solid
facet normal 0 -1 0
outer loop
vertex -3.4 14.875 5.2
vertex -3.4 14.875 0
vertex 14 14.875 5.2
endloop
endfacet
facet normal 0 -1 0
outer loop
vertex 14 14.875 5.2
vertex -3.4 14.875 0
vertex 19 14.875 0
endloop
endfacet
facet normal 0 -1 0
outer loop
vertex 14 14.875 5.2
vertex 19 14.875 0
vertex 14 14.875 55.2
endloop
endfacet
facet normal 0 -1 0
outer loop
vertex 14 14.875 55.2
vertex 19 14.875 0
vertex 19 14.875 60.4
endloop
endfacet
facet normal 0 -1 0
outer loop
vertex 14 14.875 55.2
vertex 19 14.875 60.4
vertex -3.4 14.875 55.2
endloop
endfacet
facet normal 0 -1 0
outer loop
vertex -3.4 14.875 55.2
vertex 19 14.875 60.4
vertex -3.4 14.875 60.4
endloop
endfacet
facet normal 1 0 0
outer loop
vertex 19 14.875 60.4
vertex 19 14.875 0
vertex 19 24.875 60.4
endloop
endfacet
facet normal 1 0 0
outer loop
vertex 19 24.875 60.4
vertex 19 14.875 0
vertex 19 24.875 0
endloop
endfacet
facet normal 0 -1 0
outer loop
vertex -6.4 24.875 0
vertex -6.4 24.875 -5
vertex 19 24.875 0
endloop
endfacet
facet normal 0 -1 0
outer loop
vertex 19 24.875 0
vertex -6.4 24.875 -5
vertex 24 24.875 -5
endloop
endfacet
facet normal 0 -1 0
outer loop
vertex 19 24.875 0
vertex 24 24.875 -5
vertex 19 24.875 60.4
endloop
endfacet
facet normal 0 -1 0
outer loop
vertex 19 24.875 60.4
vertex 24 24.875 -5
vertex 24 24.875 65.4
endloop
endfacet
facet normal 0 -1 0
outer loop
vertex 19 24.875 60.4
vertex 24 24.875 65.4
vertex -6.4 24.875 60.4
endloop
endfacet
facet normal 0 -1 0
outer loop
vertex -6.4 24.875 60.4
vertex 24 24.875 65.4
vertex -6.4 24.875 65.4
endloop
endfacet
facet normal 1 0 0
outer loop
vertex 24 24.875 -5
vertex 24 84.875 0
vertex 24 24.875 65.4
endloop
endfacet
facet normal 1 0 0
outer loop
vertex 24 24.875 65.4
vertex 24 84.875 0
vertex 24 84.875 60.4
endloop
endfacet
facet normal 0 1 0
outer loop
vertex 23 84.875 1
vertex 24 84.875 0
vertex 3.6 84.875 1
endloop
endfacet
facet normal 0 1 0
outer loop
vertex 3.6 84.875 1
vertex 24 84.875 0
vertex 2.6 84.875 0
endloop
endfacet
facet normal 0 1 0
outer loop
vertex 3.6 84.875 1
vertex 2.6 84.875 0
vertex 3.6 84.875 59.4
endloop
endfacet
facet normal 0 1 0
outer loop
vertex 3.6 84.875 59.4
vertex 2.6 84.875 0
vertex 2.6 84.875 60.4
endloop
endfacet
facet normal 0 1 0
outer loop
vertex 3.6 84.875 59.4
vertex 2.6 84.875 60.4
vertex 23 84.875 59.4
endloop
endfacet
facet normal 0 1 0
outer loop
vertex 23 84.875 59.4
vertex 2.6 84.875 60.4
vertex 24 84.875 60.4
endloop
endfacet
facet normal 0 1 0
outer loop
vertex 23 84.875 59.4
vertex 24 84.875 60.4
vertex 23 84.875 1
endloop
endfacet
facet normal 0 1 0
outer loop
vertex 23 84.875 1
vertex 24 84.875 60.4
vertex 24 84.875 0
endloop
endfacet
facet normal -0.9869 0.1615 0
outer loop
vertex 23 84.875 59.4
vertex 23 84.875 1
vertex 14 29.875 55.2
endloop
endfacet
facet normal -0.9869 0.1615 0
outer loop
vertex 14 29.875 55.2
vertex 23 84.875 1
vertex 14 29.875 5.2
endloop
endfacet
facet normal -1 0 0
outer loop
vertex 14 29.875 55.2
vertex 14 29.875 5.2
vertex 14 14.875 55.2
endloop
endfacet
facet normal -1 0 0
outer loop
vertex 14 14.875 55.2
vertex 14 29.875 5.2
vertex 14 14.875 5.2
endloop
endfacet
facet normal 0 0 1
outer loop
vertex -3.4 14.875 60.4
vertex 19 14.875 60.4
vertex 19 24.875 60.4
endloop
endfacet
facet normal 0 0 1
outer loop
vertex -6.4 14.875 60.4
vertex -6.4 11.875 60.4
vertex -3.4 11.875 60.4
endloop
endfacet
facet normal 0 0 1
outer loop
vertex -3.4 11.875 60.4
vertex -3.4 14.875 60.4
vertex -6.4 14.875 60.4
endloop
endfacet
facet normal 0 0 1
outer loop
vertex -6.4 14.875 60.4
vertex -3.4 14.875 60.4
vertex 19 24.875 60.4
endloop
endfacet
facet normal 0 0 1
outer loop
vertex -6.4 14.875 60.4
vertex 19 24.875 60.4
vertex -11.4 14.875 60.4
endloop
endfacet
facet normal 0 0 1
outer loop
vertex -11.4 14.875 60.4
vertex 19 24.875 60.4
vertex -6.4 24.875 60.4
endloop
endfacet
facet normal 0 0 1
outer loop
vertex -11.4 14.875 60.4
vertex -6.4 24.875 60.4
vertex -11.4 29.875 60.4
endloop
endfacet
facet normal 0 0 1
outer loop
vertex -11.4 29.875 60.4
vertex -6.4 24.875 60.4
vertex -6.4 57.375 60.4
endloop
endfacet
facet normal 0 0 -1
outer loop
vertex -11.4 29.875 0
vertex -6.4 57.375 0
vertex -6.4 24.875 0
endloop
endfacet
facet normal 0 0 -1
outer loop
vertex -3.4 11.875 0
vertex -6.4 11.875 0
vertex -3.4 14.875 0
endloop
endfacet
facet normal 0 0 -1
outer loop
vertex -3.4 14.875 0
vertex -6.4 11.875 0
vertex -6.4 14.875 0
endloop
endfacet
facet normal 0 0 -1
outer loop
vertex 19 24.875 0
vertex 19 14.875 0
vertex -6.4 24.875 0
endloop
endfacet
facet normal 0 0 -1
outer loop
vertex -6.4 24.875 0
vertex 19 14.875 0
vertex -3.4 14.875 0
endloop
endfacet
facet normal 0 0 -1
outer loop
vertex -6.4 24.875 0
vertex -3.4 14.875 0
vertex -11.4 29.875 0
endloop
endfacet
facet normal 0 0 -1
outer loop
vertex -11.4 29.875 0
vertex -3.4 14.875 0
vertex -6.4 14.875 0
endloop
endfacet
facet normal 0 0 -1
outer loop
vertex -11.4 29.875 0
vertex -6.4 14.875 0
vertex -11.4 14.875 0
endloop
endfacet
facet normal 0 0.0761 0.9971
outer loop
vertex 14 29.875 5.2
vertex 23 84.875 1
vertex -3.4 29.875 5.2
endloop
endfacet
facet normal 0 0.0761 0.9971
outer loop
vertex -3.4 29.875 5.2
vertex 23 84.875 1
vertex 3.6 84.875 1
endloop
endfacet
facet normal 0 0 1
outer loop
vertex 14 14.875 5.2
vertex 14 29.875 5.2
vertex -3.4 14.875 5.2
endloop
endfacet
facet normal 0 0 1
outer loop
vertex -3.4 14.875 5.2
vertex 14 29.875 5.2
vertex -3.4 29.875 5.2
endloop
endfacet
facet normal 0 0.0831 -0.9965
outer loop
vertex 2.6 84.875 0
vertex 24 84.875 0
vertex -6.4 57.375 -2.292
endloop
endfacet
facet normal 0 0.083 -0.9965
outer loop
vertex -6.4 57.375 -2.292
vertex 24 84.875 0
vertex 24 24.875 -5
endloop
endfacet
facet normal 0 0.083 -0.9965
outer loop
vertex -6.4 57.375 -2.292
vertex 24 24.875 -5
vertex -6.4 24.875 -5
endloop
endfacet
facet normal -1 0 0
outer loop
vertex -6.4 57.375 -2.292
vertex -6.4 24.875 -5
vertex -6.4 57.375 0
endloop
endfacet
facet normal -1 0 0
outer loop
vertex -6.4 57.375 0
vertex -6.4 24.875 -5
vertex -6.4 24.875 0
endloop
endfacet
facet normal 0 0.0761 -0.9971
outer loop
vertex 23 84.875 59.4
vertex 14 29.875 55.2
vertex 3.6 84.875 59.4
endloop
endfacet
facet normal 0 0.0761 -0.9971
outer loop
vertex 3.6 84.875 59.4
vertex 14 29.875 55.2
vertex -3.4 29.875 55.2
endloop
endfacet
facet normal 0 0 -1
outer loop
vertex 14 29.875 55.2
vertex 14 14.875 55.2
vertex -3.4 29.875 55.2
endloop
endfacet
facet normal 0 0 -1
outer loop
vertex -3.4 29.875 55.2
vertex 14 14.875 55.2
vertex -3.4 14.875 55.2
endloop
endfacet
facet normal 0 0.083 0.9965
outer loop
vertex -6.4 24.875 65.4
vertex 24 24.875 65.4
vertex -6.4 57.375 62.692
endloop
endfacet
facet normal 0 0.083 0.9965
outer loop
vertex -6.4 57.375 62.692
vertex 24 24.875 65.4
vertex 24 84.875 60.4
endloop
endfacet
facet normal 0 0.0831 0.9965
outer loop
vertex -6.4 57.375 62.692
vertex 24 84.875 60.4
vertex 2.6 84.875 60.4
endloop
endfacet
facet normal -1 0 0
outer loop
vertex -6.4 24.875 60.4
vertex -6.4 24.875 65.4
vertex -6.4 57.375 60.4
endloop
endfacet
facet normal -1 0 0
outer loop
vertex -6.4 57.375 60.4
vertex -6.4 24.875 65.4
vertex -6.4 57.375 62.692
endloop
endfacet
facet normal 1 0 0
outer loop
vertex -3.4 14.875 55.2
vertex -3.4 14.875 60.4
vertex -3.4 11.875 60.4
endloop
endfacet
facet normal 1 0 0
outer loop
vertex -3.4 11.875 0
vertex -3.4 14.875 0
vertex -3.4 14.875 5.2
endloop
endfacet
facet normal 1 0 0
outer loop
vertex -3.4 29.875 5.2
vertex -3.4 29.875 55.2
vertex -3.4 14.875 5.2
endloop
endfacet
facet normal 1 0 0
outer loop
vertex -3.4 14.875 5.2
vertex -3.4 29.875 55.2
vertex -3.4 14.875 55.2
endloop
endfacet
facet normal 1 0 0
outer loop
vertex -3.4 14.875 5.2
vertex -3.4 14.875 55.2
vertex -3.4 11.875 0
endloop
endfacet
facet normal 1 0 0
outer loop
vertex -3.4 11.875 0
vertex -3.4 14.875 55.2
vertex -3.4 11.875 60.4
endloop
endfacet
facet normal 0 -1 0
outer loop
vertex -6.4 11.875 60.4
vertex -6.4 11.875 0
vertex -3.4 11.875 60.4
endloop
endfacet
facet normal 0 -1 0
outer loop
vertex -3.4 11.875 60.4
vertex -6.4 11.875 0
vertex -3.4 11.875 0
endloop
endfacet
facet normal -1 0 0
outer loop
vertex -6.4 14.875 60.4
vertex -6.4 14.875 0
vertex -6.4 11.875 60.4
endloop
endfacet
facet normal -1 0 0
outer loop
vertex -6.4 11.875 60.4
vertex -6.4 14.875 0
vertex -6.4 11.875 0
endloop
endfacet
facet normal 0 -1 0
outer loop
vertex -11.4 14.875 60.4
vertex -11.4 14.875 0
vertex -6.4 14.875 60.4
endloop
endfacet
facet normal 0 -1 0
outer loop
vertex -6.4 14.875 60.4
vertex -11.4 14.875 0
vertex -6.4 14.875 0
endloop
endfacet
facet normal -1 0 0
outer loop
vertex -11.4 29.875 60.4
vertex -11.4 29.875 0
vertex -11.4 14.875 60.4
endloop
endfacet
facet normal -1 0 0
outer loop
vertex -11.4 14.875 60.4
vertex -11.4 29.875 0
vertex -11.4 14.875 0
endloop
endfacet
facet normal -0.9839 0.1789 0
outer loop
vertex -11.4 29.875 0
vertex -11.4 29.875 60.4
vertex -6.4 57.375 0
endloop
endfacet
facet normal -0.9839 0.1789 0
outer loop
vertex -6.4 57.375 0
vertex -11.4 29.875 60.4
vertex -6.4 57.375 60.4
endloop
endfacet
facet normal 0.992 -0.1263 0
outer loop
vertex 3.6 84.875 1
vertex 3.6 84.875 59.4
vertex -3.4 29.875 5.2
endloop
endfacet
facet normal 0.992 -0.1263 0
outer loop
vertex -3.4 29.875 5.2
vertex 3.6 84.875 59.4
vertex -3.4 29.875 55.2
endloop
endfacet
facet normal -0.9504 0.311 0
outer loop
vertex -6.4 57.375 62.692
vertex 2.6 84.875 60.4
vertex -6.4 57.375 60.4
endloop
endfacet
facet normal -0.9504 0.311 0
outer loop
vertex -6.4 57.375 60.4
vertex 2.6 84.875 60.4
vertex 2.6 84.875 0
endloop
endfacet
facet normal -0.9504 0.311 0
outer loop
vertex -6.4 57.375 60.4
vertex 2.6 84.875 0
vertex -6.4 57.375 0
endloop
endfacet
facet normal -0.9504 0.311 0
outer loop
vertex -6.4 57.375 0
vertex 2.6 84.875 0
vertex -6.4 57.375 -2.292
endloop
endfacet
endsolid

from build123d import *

# Parameters (mm, degrees)
AUFSATZ_LINEAR_AUSTRAGEN1_DEPTH      = 60.4
AUFSATZ_LINEAR_AUSTRAGEN2_DEPTH      = 30.4
AUFSATZ_LINEAR_AUSTRAGEN3_DEPTH      = 55.2
AUFSATZ_LINEAR_AUSTRAGEN3_DEPTH_BACK = 5.2
SKIZZE4_W                            = 5
SKIZZE4_H                            = 10
SCHNITT_LINEAR_AUSTRAGEN1_DEPTH      = 66.4
SCHNITT_LINEAR_AUSTRAGEN4_DEPTH      = 6
SCHNITT_LINEAR_AUSTRAGEN4_DEPTH_BACK = 66.4


with BuildPart() as part:
    # Skizze1 → Aufsatz-Linear austragen1 (new body)
    with BuildSketch(Plane.XY):
        Polygon((14, 14.875), (14, 29.875), (23, 84.875), (24, 84.875), (24, 24.875), (19, 24.875), (19, 14.875), align=None)
    extrude(amount=AUFSATZ_LINEAR_AUSTRAGEN1_DEPTH)

    # Skizze2 → Aufsatz-Linear austragen2 (add)
    with BuildSketch(Plane(origin=(24, 0, 0), x_dir=(0, 0, -1), z_dir=(1, 0, 0))):
        Polygon((-59.4, 84.875), (-60.4, 84.875), (-65.4, 24.875), (-60.4, 24.875), (-60.4, 14.875), (-55.2, 14.875), (-55.2, 29.875), align=None)
        Polygon((0, 24.875), (0, 14.875), (-5.2, 14.875), (-5.2, 29.875), (-1, 84.875), (0, 84.875), (5, 24.875), align=None)
    extrude(amount=-AUFSATZ_LINEAR_AUSTRAGEN2_DEPTH)

    # Skizze3 → Aufsatz-Linear austragen3 (add, two sides)
    with BuildSketch(Plane.XY.offset(5.2)) as aufsatz_linear_austragen3_sk:
        Polygon((-3.4, 29.875), (-3.4, 14.875), (-3.4, 11.875), (-6.4, 11.875), (-6.4, 14.875), (-11.4, 14.875), (-11.4, 29.875), (-1.4, 84.875), (3.6, 84.875), align=None)
    extrude(amount=AUFSATZ_LINEAR_AUSTRAGEN3_DEPTH)
    extrude(aufsatz_linear_austragen3_sk.sketch, amount=-AUFSATZ_LINEAR_AUSTRAGEN3_DEPTH_BACK)

    # Skizze4 → Schnitt-Linear austragen1 (cut, through all)
    with BuildSketch(Plane.XY.offset(60.4)):
        with Locations((21.5, 19.875)):
            Rectangle(SKIZZE4_W, SKIZZE4_H)
    extrude(amount=-SCHNITT_LINEAR_AUSTRAGEN1_DEPTH, mode=Mode.SUBTRACT)

    # Skizze7 → Schnitt-Linear austragen4 (cut, two sides)
    with BuildSketch(Plane(origin=(0, 0, 0), x_dir=(-1, 0, 0), z_dir=(0, 0, -1))) as schnitt_linear_austragen4_sk:
        Polygon((6.4, 57.375), (-2.6, 84.875), (6.4, 84.875), align=None)
    extrude(amount=SCHNITT_LINEAR_AUSTRAGEN4_DEPTH, mode=Mode.SUBTRACT)
    extrude(schnitt_linear_austragen4_sk.sketch, amount=-SCHNITT_LINEAR_AUSTRAGEN4_DEPTH_BACK, mode=Mode.SUBTRACT)


solid = part.part
